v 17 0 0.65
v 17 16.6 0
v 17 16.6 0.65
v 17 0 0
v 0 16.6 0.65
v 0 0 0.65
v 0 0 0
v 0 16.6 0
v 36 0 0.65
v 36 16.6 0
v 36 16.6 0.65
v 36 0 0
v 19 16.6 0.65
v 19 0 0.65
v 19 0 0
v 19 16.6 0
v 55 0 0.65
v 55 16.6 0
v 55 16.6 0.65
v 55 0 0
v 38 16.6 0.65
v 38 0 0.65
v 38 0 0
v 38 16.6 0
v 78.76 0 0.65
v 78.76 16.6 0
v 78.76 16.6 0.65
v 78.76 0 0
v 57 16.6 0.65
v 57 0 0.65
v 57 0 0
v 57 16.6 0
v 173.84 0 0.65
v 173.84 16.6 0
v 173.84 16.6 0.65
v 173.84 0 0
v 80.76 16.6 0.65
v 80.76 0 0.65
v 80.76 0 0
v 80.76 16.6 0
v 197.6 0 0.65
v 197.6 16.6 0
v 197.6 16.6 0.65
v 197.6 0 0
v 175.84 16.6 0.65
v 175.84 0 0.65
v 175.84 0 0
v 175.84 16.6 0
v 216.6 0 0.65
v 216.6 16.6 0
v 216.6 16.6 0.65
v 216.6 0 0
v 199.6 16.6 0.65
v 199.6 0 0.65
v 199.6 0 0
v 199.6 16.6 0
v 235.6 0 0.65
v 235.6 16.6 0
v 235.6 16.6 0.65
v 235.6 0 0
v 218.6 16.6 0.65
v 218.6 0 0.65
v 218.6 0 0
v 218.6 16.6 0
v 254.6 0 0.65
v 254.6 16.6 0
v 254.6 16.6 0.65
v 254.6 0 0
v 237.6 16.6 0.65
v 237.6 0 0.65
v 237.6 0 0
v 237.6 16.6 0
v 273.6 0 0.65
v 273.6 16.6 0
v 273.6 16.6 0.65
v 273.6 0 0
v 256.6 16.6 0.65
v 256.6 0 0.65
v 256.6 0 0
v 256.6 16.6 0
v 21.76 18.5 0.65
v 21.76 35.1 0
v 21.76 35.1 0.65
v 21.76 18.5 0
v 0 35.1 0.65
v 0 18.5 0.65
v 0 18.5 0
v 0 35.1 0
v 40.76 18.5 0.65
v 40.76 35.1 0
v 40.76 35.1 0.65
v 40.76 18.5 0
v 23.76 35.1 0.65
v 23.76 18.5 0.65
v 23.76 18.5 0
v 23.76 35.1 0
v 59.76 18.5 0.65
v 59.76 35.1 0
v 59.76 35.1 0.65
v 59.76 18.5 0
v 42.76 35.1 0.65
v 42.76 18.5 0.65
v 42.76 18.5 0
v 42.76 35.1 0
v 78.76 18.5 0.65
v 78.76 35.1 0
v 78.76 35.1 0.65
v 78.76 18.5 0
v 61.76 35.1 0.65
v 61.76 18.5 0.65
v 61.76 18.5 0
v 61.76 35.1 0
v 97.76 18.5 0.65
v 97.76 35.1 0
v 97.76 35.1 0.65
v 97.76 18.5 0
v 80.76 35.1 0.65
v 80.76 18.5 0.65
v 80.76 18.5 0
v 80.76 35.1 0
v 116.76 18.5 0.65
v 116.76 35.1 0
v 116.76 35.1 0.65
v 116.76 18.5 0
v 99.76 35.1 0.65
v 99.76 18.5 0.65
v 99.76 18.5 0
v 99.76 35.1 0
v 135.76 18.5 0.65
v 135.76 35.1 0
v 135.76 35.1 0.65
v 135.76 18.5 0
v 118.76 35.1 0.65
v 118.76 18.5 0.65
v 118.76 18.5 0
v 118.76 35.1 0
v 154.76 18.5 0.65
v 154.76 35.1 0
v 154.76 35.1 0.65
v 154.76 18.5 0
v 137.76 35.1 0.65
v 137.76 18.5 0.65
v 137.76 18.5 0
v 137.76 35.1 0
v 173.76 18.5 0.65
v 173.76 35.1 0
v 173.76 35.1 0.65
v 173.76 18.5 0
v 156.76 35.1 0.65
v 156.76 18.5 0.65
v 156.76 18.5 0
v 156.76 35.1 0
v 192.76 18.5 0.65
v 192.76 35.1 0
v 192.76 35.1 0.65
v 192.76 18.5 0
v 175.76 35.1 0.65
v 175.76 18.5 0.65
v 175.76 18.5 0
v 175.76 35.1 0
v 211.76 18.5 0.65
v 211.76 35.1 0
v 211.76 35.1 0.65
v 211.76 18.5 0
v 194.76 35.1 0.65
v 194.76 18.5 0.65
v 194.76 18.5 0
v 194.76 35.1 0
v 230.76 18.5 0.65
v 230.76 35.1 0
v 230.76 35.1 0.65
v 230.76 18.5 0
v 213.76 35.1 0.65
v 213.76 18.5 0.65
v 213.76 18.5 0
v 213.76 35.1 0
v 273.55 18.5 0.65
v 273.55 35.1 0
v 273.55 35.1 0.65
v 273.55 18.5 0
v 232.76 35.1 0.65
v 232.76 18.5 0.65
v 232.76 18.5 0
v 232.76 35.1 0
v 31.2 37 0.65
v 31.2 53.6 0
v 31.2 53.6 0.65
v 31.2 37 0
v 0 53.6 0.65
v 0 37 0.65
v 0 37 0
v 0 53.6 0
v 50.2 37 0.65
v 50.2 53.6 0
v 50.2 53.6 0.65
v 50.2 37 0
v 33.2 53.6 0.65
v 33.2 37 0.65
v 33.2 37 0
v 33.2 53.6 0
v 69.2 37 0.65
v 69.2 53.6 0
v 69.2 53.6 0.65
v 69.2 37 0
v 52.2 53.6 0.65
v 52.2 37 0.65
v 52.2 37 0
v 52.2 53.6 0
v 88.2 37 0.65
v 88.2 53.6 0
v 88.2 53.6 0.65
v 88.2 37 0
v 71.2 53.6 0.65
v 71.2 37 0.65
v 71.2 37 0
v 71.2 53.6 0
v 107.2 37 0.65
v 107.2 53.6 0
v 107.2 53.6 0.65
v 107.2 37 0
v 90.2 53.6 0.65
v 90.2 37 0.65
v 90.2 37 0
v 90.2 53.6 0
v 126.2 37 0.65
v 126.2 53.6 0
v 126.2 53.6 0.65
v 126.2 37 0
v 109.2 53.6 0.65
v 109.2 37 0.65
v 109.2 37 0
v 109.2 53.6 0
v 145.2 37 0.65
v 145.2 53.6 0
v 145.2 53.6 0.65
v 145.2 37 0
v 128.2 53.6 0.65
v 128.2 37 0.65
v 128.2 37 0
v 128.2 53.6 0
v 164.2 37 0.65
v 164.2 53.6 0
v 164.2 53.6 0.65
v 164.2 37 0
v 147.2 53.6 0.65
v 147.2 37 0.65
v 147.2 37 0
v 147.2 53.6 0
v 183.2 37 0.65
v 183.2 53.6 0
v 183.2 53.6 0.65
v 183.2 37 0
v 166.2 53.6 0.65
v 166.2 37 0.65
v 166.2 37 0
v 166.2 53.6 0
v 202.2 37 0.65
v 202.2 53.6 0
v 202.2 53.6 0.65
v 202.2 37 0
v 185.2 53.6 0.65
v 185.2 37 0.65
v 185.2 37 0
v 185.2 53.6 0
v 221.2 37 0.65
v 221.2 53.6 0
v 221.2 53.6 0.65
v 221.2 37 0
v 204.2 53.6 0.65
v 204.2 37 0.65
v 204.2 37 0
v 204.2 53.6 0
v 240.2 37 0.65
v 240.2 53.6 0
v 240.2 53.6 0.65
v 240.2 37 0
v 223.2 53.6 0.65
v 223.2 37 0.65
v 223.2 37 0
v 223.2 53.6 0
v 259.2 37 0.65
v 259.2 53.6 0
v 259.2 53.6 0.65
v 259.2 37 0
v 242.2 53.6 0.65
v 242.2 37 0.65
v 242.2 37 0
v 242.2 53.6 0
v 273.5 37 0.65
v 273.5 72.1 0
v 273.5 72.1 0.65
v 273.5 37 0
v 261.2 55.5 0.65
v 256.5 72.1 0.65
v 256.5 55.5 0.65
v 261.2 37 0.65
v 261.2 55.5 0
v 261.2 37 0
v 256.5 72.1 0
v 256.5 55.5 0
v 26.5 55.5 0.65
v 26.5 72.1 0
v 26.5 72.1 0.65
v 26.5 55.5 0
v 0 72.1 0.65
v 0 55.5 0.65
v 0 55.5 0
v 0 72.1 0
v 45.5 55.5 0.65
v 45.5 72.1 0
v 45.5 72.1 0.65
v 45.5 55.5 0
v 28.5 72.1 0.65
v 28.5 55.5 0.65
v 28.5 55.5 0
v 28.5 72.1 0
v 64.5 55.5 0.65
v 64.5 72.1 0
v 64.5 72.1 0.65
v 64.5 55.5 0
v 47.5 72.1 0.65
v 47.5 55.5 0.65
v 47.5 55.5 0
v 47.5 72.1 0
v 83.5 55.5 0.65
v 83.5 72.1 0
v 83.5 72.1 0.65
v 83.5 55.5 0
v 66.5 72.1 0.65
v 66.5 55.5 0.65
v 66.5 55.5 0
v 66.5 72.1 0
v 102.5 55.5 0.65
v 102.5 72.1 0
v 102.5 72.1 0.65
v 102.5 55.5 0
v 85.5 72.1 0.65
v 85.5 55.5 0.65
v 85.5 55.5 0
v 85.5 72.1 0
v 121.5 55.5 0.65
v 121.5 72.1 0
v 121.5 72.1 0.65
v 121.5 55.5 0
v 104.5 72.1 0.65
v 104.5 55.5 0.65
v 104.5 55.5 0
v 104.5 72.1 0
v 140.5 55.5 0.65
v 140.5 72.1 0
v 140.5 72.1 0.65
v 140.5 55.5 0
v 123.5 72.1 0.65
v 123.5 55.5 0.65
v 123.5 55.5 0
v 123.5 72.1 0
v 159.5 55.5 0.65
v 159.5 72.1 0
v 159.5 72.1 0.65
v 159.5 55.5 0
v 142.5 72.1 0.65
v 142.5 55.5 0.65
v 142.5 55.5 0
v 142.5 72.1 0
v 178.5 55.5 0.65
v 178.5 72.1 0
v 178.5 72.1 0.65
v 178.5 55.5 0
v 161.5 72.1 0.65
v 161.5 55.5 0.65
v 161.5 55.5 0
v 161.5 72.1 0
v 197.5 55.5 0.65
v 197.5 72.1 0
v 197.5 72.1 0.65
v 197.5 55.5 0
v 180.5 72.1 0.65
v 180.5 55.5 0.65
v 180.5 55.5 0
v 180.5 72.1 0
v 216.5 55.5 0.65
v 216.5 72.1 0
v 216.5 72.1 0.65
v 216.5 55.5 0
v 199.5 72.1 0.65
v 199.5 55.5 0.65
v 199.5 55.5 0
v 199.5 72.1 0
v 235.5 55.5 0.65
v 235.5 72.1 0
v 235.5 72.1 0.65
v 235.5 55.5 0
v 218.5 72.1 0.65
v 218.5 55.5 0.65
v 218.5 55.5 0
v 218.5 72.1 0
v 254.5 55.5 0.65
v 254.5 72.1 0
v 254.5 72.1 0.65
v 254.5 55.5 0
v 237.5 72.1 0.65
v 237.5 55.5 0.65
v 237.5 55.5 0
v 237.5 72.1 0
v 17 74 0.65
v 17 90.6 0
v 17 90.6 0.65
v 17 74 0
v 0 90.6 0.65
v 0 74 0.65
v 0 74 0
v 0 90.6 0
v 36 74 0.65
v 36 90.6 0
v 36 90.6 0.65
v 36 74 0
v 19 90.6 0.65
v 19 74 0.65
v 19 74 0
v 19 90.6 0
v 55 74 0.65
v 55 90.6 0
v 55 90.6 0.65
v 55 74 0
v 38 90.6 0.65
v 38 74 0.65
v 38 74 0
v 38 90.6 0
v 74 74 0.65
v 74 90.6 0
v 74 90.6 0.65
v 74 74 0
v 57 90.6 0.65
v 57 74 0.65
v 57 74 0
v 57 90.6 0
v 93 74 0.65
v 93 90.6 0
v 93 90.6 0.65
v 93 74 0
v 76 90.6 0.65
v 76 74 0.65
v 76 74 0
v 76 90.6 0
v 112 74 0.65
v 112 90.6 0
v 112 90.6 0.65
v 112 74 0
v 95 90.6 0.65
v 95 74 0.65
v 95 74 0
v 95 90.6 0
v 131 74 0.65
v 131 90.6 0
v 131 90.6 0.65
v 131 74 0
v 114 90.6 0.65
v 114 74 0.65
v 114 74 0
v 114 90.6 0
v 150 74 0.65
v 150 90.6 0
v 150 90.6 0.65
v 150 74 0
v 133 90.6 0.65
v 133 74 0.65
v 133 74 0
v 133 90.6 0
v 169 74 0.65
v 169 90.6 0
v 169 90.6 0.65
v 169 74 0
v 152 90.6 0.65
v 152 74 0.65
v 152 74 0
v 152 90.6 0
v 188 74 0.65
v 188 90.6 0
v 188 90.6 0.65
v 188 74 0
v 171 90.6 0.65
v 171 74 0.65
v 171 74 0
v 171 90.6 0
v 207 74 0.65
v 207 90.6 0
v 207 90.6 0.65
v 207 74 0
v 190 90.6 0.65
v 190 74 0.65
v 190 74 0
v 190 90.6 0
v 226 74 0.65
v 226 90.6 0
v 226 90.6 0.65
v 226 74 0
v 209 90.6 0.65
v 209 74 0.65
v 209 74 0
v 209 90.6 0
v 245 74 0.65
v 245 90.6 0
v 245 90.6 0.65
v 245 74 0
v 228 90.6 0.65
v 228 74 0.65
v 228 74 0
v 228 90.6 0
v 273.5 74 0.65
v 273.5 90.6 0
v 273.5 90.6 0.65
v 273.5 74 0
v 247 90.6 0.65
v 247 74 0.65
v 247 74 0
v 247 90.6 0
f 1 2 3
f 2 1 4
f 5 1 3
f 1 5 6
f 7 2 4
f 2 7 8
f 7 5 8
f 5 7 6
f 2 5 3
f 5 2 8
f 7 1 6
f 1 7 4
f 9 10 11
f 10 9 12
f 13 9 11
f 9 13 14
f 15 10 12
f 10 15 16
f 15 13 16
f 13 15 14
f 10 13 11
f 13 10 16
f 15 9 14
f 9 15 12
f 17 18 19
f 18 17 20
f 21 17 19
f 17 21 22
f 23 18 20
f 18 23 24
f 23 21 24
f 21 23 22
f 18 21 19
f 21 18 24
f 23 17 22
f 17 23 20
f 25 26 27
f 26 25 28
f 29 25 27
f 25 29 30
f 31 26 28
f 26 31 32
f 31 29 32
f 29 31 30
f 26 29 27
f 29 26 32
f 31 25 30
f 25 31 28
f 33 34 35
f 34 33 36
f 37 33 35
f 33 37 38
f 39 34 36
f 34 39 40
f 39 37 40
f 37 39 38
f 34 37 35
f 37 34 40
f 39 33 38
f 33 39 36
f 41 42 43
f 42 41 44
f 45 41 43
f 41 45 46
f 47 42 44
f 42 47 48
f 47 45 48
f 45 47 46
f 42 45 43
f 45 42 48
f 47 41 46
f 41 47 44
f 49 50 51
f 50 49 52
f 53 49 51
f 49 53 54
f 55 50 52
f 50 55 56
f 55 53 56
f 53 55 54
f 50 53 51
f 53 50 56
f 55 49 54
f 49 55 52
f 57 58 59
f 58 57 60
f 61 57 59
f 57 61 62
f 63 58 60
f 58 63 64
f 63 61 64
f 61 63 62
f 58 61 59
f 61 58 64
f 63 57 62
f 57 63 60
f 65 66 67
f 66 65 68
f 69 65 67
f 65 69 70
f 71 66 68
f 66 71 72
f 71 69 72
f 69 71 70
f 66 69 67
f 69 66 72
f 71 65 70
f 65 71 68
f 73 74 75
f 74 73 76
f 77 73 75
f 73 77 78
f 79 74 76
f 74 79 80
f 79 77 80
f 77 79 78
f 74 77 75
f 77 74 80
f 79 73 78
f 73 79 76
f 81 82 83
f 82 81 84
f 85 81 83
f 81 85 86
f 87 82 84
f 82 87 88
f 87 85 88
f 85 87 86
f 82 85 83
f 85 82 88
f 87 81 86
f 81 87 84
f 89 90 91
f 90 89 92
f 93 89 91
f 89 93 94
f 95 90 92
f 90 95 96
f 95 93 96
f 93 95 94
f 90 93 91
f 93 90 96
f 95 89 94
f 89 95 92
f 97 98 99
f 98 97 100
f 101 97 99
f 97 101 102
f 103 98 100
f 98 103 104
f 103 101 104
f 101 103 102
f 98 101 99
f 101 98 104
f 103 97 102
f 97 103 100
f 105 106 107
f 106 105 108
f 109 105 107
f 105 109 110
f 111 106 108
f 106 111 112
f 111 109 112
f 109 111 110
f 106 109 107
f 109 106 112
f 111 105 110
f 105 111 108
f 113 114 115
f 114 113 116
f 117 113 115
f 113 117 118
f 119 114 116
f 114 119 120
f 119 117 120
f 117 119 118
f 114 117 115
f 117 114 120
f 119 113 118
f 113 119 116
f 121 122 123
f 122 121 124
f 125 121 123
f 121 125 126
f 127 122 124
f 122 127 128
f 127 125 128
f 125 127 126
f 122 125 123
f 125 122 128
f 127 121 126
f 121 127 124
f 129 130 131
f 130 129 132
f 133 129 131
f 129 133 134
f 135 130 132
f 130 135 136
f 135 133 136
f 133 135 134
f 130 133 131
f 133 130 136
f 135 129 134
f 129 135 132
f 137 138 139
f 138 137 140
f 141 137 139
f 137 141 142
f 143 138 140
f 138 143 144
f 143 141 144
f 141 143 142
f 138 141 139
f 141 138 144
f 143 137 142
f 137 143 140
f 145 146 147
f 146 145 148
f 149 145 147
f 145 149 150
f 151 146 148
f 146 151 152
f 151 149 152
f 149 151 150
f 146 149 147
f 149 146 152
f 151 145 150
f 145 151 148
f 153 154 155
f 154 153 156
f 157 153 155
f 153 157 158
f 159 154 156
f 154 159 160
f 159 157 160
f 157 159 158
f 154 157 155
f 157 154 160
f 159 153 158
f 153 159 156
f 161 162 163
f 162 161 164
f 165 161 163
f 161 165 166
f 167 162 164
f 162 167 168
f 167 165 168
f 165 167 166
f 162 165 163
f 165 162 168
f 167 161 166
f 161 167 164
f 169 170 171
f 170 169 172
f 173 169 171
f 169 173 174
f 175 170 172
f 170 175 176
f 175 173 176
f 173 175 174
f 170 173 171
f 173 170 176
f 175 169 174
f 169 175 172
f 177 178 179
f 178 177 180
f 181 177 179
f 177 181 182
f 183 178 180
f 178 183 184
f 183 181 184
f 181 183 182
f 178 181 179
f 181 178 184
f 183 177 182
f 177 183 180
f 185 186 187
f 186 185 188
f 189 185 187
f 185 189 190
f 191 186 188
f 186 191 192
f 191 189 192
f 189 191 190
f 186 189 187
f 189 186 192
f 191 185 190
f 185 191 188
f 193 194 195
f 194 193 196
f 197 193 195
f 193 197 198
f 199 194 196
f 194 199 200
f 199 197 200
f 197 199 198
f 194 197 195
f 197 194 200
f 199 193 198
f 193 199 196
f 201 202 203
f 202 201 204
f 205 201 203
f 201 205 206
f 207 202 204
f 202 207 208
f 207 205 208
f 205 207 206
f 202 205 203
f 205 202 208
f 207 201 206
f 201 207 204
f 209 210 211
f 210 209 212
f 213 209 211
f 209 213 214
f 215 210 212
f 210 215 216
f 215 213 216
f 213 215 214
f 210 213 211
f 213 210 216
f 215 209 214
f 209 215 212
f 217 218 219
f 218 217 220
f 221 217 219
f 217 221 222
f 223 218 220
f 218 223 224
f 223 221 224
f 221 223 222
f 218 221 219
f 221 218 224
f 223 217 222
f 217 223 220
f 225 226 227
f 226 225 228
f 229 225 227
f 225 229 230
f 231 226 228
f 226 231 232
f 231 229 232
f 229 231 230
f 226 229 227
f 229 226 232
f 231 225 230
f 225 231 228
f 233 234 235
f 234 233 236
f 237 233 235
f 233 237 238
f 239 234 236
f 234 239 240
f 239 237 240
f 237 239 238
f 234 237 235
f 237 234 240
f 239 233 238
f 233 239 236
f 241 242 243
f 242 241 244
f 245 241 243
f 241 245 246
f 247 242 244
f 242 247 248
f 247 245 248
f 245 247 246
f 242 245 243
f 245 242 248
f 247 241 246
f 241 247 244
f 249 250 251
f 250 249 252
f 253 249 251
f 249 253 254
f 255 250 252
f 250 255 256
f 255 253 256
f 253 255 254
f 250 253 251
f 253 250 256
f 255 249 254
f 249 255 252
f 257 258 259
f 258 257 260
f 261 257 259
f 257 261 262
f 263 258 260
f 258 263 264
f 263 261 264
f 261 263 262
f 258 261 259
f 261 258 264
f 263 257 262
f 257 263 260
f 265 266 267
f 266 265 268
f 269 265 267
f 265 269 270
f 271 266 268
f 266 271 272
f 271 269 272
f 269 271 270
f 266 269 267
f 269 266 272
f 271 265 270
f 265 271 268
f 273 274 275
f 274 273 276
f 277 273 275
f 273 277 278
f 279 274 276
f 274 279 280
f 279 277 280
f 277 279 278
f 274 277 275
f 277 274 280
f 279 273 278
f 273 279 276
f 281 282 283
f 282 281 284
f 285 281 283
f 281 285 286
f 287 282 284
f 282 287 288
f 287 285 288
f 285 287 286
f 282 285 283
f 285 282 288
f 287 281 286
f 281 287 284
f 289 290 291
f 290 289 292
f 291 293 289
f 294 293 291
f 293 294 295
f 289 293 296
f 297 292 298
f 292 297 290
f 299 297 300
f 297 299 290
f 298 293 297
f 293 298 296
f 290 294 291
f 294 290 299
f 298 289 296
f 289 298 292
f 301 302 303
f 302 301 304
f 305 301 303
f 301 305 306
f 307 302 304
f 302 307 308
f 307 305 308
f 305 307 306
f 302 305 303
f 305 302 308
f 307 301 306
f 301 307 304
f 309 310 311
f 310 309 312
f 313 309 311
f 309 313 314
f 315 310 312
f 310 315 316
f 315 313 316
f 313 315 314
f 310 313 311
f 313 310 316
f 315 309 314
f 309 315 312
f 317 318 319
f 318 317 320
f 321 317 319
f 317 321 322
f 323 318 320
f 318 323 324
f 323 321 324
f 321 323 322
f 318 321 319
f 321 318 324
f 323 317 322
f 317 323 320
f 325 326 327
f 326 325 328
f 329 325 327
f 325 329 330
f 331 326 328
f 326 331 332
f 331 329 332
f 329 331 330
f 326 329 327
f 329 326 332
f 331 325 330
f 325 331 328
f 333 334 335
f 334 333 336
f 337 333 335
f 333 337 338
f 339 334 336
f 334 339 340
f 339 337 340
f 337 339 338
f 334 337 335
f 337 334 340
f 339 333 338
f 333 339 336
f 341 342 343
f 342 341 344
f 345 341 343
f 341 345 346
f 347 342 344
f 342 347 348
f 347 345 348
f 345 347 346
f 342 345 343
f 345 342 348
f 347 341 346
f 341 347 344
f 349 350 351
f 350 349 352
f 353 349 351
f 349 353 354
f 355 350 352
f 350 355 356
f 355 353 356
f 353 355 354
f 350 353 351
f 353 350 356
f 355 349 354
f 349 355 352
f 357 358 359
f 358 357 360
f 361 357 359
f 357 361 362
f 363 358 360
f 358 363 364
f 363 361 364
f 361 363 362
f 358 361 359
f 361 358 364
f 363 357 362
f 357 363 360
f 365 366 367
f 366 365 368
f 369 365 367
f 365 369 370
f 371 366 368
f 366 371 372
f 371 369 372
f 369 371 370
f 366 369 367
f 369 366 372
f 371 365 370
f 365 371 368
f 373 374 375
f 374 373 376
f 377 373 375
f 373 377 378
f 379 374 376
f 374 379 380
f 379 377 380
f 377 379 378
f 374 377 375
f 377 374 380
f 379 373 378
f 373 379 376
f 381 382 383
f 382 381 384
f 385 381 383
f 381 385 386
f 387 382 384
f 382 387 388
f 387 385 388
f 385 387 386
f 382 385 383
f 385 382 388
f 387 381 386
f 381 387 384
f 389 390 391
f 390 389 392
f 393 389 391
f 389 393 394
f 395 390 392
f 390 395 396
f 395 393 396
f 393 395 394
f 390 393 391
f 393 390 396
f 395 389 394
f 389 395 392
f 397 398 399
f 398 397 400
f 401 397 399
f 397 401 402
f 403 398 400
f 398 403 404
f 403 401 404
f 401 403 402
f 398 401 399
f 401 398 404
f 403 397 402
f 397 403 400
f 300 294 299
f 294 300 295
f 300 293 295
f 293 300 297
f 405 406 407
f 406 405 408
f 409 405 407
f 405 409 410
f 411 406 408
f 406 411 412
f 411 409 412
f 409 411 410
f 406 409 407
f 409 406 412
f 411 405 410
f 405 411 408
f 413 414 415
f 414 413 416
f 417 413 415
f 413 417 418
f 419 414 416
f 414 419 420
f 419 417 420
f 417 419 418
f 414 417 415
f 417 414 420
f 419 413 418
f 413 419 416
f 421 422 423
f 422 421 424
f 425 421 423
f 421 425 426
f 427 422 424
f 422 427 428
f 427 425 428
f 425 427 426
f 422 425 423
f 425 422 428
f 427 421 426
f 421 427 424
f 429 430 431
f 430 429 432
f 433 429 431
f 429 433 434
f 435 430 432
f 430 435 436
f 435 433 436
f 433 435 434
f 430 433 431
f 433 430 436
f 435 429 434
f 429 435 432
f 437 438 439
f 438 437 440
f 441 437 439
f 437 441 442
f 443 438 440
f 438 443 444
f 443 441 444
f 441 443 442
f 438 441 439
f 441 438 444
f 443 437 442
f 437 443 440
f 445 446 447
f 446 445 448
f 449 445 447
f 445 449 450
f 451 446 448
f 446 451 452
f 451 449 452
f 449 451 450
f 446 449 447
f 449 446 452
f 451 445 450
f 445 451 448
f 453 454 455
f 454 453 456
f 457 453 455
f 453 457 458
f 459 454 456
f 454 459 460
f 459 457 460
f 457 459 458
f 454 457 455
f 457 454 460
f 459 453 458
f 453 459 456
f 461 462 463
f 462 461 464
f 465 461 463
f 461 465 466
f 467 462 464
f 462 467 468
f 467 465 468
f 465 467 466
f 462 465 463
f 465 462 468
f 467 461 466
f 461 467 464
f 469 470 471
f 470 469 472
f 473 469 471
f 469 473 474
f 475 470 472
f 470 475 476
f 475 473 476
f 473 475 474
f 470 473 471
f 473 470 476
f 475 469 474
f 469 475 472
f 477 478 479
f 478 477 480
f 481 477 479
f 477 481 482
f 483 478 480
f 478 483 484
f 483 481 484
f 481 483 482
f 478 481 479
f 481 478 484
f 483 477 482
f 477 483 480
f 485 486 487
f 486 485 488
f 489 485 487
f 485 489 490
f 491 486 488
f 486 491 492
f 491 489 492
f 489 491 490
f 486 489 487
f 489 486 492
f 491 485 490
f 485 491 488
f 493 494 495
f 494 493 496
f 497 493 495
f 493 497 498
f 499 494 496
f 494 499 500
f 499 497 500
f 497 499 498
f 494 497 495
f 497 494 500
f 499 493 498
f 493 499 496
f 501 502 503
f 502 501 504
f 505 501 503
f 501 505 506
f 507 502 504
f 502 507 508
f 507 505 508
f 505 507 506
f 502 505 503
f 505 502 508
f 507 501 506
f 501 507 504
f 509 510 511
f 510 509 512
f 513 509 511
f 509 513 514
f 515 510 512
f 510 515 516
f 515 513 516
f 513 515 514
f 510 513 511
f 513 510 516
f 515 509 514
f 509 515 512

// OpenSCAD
translate ([0, 0, 0]) {
  cube ([17, 16.6, 0.65]);
}
translate ([19, 0, 0]) {
  cube ([17, 16.6, 0.65]);
}
translate ([38, 0, 0]) {
  cube ([17, 16.6, 0.65]);
}
translate ([57, 0, 0]) {
  cube ([21.76, 16.6, 0.65]);
}
translate ([80.76, 0, 0]) {
  cube ([93.08, 16.6, 0.65]);
}
translate ([175.84, 0, 0]) {
  cube ([21.76, 16.6, 0.65]);
}
translate ([199.6, 0, 0]) {
  cube ([17, 16.6, 0.65]);
}
translate ([218.6, 0, 0]) {
  cube ([17, 16.6, 0.65]);
}
translate ([237.6, 0, 0]) {
  cube ([17, 16.6, 0.65]);
}
translate ([256.6, 0, 0]) {
  cube ([17, 16.6, 0.65]);
}
translate ([0, 18.5, 0]) {
  cube ([21.76, 16.6, 0.65]);
}
translate ([23.76, 18.5, 0]) {
  cube ([17, 16.6, 0.65]);
}
translate ([42.760000000000005, 18.5, 0]) {
  cube ([17, 16.6, 0.65]);
}
translate ([61.760000000000005, 18.5, 0]) {
  cube ([17, 16.6, 0.65]);
}
translate ([80.76, 18.5, 0]) {
  cube ([17, 16.6, 0.65]);
}
translate ([99.76, 18.5, 0]) {
  cube ([17, 16.6, 0.65]);
}
translate ([118.76, 18.5, 0]) {
  cube ([17, 16.6, 0.65]);
}
translate ([137.76, 18.5, 0]) {
  cube ([17, 16.6, 0.65]);
}
translate ([156.76, 18.5, 0]) {
  cube ([17, 16.6, 0.65]);
}
translate ([175.76, 18.5, 0]) {
  cube ([17, 16.6, 0.65]);
}
translate ([194.76, 18.5, 0]) {
  cube ([17, 16.6, 0.65]);
}
translate ([213.76, 18.5, 0]) {
  cube ([17, 16.6, 0.65]);
}
translate ([232.76, 18.5, 0]) {
  cube ([40.79, 16.6, 0.65]);
}
translate ([0, 37.0, 0]) {
  cube ([31.2, 16.6, 0.65]);
}
translate ([33.2, 37.0, 0]) {
  cube ([17, 16.6, 0.65]);
}
translate ([52.2, 37.0, 0]) {
  cube ([17, 16.6, 0.65]);
}
translate ([71.2, 37.0, 0]) {
  cube ([17, 16.6, 0.65]);
}
translate ([90.2, 37.0, 0]) {
  cube ([17, 16.6, 0.65]);
}
translate ([109.2, 37.0, 0]) {
  cube ([17, 16.6, 0.65]);
}
translate ([128.2, 37.0, 0]) {
  cube ([17, 16.6, 0.65]);
}
translate ([147.2, 37.0, 0]) {
  cube ([17, 16.6, 0.65]);
}
translate ([166.2, 37.0, 0]) {
  cube ([17, 16.6, 0.65]);
}
translate ([185.2, 37.0, 0]) {
  cube ([17, 16.6, 0.65]);
}
translate ([204.2, 37.0, 0]) {
  cube ([17, 16.6, 0.65]);
}
translate ([223.2, 37.0, 0]) {
  cube ([17, 16.6, 0.65]);
}
translate ([242.2, 37.0, 0]) {
  cube ([17, 16.6, 0.65]);
}
translate ([261.2, 37.0, 0]) {
  cube ([12.3, 35.1, 0.65]);
}
translate ([0, 55.5, 0]) {
  cube ([26.5, 16.6, 0.65]);
}
translate ([28.5, 55.5, 0]) {
  cube ([17, 16.6, 0.65]);
}
translate ([47.5, 55.5, 0]) {
  cube ([17, 16.6, 0.65]);
}
translate ([66.5, 55.5, 0]) {
  cube ([17, 16.6, 0.65]);
}
translate ([85.5, 55.5, 0]) {
  cube ([17, 16.6, 0.65]);
}
translate ([104.5, 55.5, 0]) {
  cube ([17, 16.6, 0.65]);
}
translate ([123.5, 55.5, 0]) {
  cube ([17, 16.6, 0.65]);
}
translate ([142.5, 55.5, 0]) {
  cube ([17, 16.6, 0.65]);
}
translate ([161.5, 55.5, 0]) {
  cube ([17, 16.6, 0.65]);
}
translate ([180.5, 55.5, 0]) {
  cube ([17, 16.6, 0.65]);
}
translate ([199.5, 55.5, 0]) {
  cube ([17, 16.6, 0.65]);
}
translate ([218.5, 55.5, 0]) {
  cube ([17, 16.6, 0.65]);
}
translate ([237.5, 55.5, 0]) {
  cube ([17, 16.6, 0.65]);
}
translate ([256.5, 55.5, 0]) {
  cube ([17, 16.6, 0.65]);
}
translate ([0, 74.0, 0]) {
  cube ([17, 16.6, 0.65]);
}
translate ([19, 74.0, 0]) {
  cube ([17, 16.6, 0.65]);
}
translate ([38, 74.0, 0]) {
  cube ([17, 16.6, 0.65]);
}
translate ([57, 74.0, 0]) {
  cube ([17, 16.6, 0.65]);
}
translate ([76, 74.0, 0]) {
  cube ([17, 16.6, 0.65]);
}
translate ([95, 74.0, 0]) {
  cube ([17, 16.6, 0.65]);
}
translate ([114, 74.0, 0]) {
  cube ([17, 16.6, 0.65]);
}
translate ([133, 74.0, 0]) {
  cube ([17, 16.6, 0.65]);
}
translate ([152, 74.0, 0]) {
  cube ([17, 16.6, 0.65]);
}
translate ([171, 74.0, 0]) {
  cube ([17, 16.6, 0.65]);
}
translate ([190, 74.0, 0]) {
  cube ([17, 16.6, 0.65]);
}
translate ([209, 74.0, 0]) {
  cube ([17, 16.6, 0.65]);
}
translate ([228, 74.0, 0]) {
  cube ([17, 16.6, 0.65]);
}
translate ([247, 74.0, 0]) {
  cube ([26.5, 16.6, 0.65]);
}
$fn = 10;
